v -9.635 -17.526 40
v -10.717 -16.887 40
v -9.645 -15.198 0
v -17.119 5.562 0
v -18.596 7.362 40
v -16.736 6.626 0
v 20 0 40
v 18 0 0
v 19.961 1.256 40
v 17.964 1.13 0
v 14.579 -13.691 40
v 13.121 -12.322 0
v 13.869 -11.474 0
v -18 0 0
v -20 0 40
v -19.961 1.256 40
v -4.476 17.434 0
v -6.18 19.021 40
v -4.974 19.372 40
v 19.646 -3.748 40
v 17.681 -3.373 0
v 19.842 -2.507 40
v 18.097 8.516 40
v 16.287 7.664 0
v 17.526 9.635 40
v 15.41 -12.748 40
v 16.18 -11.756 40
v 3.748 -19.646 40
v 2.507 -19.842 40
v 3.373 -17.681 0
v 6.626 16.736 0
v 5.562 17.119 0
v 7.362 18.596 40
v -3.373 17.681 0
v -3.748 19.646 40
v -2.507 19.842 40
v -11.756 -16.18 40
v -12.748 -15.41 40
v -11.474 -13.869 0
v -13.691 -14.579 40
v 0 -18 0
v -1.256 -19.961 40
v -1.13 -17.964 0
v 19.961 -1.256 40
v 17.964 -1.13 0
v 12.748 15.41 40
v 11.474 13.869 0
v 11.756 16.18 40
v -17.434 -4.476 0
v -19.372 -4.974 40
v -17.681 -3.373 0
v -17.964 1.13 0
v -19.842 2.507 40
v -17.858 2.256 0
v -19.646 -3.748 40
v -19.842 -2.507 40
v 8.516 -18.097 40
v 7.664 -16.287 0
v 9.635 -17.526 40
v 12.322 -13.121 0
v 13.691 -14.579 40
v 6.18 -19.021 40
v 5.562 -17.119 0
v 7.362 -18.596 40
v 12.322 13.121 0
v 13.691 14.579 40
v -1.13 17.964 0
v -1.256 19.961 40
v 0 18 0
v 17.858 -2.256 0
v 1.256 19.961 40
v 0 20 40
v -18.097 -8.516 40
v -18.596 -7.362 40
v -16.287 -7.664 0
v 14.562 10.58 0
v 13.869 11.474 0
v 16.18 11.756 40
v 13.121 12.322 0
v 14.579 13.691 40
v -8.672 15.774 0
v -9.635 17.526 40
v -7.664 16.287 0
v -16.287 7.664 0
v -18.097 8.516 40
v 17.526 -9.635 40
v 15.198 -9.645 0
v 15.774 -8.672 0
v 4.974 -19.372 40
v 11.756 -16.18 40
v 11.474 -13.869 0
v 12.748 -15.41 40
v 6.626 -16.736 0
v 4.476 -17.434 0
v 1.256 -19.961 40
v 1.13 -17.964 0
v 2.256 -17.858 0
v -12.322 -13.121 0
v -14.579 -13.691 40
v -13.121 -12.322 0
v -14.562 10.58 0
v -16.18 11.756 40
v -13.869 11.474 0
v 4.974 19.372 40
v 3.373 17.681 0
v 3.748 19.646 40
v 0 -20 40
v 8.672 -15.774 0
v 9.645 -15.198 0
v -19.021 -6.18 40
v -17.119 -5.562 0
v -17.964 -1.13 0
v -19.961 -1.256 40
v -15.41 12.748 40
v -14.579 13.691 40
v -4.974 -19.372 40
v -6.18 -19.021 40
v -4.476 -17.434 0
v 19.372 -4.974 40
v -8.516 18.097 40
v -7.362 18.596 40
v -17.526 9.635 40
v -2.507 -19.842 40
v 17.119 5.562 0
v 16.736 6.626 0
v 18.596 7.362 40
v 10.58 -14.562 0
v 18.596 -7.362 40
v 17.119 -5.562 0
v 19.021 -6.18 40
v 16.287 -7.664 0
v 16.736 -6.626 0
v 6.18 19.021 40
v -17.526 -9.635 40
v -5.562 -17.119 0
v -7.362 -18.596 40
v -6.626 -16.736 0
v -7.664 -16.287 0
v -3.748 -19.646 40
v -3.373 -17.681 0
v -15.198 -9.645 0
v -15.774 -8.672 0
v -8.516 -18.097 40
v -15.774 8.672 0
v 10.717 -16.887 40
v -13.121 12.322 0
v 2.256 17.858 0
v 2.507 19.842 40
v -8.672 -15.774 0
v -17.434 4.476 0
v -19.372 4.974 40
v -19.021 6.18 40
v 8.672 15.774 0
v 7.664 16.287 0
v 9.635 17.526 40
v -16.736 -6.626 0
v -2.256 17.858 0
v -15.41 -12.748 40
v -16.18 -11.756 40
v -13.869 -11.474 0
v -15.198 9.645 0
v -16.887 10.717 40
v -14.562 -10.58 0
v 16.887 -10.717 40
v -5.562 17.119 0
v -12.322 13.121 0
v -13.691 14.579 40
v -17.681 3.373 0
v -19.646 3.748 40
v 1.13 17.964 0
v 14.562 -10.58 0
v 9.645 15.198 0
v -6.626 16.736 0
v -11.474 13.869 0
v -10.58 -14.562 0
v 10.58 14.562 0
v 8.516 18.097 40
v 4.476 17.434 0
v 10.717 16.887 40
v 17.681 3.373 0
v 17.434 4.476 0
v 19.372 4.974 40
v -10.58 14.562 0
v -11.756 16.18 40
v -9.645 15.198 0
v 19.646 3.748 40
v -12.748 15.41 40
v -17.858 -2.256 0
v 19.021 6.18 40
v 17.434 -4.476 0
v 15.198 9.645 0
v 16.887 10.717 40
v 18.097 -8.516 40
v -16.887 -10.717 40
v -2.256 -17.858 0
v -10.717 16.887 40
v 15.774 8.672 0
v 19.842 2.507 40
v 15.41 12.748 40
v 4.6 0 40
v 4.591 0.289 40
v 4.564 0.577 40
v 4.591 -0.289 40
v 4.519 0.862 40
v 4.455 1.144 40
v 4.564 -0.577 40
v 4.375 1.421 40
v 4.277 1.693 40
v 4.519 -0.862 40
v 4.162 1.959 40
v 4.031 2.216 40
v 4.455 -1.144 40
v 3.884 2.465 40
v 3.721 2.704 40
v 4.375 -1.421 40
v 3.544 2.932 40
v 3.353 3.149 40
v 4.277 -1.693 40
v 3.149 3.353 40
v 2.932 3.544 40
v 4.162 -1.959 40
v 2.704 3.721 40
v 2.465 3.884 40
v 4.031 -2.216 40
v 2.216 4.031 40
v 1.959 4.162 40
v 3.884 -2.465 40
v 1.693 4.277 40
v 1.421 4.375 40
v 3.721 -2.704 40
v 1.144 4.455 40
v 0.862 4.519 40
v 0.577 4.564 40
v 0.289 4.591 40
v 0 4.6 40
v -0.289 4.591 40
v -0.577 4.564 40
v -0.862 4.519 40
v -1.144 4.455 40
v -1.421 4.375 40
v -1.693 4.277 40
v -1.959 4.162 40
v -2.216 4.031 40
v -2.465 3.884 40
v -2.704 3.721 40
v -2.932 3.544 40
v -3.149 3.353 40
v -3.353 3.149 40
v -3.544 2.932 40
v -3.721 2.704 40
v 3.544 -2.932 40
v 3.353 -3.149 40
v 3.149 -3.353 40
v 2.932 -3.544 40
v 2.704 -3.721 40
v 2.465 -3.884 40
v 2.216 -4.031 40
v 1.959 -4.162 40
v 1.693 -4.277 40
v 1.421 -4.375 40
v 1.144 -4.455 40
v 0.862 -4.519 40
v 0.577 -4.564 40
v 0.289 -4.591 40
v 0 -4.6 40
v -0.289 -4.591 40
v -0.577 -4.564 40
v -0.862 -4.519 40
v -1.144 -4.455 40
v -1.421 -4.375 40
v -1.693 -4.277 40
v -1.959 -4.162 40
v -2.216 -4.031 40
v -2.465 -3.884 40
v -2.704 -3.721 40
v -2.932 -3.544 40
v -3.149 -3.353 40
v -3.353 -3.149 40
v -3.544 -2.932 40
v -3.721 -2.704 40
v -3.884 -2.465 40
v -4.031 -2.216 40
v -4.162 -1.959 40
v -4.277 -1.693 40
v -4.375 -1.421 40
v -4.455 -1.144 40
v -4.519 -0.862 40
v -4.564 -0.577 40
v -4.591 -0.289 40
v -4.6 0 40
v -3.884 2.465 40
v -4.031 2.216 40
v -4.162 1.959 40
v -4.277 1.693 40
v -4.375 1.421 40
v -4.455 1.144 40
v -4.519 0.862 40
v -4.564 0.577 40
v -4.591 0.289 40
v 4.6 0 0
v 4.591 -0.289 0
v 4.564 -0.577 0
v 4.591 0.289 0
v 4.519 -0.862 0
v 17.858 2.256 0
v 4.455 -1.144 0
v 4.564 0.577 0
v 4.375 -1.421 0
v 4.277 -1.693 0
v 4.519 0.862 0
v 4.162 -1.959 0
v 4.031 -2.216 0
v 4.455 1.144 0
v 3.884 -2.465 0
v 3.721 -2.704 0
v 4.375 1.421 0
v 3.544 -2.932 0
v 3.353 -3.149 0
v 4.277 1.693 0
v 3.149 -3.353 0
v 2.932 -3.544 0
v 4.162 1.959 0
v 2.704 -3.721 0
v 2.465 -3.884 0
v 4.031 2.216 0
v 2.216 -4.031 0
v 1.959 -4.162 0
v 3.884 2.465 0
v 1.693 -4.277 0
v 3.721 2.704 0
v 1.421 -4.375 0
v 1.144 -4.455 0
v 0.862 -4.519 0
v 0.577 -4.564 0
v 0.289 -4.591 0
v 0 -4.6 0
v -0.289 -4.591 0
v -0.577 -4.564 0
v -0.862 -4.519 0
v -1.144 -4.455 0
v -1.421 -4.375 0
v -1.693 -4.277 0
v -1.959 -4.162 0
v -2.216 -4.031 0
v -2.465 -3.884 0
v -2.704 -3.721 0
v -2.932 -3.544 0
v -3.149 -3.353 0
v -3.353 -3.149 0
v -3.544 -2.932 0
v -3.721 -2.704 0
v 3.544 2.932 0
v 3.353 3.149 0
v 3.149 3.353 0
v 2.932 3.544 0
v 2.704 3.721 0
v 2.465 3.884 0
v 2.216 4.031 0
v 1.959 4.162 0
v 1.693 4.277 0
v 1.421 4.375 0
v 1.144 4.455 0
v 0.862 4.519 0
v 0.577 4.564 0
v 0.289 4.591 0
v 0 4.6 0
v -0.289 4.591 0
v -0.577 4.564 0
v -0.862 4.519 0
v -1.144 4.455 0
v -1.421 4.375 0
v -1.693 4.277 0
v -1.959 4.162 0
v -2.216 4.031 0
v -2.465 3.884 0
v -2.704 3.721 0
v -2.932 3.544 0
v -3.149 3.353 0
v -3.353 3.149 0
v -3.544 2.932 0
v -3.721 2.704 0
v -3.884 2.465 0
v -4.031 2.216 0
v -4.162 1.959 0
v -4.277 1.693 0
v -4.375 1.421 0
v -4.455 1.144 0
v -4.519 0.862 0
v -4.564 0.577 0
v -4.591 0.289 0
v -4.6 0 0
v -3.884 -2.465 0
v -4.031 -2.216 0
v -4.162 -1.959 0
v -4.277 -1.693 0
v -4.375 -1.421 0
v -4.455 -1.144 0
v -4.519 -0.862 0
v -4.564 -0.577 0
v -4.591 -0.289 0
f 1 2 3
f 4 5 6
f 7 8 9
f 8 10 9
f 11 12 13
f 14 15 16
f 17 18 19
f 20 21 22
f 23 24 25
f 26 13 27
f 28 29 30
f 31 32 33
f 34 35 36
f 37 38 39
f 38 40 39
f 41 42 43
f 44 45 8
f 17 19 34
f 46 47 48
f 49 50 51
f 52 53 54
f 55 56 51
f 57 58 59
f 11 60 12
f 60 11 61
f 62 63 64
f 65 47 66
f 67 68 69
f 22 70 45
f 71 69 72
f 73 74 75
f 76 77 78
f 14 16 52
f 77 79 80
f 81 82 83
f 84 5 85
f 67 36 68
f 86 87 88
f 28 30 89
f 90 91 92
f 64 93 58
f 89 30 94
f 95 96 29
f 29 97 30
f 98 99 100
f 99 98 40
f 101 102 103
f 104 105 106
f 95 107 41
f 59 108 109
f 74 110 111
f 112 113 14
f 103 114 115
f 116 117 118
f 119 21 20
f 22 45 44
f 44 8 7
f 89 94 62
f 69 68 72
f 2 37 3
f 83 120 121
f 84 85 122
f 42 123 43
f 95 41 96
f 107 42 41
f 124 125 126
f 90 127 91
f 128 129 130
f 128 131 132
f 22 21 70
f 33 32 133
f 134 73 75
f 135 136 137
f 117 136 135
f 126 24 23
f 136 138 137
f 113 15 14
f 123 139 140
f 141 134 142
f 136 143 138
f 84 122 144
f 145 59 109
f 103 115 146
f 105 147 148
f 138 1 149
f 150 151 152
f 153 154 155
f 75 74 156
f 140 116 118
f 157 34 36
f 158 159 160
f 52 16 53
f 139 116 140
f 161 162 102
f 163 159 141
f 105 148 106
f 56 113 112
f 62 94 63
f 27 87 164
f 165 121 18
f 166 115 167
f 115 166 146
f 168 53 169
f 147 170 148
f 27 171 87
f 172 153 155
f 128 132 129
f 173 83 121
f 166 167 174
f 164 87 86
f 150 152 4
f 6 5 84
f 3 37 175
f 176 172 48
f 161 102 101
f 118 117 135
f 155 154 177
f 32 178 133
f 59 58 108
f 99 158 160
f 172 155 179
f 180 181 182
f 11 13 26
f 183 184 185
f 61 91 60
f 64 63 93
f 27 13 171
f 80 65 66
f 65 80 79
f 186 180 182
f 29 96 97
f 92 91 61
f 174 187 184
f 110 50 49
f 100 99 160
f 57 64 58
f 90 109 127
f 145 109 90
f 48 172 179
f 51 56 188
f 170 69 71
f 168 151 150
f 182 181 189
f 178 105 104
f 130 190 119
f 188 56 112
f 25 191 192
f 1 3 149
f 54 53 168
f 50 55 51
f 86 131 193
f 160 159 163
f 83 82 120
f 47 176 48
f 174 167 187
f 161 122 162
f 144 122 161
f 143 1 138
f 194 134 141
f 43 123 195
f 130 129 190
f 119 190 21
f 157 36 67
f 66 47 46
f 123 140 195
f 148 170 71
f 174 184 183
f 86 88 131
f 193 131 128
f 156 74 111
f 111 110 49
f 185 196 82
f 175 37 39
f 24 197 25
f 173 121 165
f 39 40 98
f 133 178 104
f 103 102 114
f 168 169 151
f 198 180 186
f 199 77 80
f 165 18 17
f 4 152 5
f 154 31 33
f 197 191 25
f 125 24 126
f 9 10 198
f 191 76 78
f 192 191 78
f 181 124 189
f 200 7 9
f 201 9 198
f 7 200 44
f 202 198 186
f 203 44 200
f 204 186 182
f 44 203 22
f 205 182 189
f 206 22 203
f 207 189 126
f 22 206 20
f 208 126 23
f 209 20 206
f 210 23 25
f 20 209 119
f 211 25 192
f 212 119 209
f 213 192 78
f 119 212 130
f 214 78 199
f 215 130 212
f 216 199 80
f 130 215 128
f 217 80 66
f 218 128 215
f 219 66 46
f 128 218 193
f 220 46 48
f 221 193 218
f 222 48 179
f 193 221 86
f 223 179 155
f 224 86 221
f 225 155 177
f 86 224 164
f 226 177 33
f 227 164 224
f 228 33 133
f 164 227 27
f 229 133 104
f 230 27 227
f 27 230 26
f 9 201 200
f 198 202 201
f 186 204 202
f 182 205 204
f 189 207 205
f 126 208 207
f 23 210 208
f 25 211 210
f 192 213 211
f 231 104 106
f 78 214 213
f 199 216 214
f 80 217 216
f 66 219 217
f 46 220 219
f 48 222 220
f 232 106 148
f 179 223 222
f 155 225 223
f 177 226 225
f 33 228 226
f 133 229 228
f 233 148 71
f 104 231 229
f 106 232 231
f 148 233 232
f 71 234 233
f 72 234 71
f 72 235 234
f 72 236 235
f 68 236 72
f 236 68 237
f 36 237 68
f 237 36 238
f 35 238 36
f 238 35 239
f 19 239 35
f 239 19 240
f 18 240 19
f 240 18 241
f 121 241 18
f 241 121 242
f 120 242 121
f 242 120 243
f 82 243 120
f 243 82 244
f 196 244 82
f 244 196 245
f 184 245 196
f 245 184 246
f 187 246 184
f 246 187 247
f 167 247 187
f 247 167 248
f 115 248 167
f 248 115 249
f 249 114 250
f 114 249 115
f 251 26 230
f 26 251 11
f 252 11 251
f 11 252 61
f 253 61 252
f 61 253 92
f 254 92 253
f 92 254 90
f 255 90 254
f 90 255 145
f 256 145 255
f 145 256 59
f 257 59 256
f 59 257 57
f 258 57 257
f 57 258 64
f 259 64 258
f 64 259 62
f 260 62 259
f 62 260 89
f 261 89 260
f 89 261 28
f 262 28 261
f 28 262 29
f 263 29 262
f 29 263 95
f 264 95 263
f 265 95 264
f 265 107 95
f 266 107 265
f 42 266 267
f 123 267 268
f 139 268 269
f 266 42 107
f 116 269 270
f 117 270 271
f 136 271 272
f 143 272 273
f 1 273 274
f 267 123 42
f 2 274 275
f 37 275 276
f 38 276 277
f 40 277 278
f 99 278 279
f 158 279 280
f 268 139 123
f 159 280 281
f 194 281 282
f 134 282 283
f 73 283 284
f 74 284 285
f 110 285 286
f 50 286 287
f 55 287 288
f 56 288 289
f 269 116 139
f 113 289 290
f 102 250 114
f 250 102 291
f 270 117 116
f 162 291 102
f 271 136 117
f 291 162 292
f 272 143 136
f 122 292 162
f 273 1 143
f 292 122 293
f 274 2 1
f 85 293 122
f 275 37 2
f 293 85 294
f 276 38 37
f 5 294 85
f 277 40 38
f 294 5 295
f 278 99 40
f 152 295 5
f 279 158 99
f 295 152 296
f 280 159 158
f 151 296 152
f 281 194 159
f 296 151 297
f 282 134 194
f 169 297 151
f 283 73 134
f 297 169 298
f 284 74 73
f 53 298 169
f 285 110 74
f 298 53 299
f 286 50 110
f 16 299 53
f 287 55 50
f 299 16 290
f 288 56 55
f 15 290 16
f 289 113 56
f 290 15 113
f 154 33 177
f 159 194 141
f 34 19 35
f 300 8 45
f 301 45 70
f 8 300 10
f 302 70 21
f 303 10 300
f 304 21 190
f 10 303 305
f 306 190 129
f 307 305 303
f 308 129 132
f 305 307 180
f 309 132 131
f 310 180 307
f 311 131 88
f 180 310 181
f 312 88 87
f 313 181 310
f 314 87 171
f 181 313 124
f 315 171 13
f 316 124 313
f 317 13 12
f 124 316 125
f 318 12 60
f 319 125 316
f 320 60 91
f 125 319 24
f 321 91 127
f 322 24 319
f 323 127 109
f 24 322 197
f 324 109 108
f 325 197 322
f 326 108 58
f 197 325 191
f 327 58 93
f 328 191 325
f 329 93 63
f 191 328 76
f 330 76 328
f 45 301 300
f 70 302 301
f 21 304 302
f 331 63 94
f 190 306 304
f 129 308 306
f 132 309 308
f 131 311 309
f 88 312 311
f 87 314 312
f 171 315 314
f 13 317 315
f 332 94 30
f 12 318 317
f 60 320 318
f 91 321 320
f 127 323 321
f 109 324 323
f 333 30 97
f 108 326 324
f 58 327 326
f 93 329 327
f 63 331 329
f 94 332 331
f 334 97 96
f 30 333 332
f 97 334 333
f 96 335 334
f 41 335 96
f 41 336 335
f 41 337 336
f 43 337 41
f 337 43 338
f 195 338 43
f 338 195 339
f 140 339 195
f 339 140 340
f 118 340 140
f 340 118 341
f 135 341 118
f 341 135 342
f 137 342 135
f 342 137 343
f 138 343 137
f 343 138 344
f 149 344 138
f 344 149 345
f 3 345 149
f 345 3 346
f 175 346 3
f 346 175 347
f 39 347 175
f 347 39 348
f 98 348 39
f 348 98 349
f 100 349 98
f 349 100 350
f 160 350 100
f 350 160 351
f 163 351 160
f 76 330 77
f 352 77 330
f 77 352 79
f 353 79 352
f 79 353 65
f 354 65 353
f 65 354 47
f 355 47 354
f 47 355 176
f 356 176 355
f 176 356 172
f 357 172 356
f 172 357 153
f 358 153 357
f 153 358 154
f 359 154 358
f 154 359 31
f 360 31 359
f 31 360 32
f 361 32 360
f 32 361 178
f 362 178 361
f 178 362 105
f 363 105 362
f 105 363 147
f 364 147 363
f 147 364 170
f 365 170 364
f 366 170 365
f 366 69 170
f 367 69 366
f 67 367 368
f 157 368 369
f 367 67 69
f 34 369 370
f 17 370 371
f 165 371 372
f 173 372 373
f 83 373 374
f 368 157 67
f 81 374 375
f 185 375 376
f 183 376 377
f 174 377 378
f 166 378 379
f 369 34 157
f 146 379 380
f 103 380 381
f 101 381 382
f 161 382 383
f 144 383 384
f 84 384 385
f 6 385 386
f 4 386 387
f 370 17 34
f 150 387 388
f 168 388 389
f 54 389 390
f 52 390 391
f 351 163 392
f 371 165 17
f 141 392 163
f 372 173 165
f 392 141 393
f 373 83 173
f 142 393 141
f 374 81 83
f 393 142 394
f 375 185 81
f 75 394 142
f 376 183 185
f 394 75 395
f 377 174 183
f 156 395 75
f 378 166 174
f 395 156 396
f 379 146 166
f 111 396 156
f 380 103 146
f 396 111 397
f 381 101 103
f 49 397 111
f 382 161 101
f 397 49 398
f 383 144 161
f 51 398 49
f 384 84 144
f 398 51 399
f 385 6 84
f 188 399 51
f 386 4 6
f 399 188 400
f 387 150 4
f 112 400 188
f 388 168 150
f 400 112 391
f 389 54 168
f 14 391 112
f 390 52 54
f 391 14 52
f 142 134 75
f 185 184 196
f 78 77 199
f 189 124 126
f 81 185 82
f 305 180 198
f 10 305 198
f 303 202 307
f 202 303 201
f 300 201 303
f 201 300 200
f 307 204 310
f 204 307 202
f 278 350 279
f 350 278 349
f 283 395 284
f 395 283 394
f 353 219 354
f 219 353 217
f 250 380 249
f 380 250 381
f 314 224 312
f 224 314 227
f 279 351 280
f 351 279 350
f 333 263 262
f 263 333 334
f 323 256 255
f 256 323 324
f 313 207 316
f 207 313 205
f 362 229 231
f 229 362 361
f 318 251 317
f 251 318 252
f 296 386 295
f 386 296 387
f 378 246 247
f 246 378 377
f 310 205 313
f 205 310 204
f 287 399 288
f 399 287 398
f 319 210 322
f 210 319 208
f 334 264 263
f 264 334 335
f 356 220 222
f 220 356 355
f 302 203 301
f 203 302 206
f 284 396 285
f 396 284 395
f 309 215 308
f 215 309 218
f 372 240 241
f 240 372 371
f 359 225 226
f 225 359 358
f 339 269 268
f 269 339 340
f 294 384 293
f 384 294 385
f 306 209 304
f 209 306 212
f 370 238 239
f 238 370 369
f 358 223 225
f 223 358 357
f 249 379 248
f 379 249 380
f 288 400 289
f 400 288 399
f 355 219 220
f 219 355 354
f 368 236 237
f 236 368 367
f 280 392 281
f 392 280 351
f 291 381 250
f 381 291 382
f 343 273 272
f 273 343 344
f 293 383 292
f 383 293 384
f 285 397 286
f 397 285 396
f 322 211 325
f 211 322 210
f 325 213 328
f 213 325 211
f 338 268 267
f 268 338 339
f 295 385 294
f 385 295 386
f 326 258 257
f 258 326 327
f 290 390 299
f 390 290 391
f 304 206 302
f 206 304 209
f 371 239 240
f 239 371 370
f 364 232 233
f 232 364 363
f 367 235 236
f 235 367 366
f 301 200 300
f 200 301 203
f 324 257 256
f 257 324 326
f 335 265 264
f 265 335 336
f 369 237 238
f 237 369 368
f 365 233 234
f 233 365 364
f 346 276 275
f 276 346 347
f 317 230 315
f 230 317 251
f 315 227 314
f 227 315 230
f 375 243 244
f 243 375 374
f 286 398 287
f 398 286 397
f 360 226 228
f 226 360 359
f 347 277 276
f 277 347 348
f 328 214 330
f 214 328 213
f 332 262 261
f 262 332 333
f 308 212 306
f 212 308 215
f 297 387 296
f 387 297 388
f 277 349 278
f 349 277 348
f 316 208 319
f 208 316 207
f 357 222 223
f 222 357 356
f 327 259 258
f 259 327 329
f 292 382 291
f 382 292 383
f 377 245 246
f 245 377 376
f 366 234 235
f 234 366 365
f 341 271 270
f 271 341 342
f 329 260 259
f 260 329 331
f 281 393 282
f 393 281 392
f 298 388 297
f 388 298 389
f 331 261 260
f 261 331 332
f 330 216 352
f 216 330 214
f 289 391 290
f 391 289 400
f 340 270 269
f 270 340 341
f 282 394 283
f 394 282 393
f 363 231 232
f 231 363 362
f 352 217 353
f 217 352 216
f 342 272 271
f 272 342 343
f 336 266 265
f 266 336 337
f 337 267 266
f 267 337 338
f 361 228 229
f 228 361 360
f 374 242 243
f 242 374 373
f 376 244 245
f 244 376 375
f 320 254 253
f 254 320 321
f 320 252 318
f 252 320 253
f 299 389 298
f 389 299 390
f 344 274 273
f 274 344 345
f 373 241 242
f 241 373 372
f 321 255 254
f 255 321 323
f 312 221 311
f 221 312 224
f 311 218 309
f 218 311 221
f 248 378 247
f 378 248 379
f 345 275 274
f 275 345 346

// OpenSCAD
// Parameters
x = 18;      // bottom radius
y = 2;       // taper increment (top radius = x + y)
z = 40;      // height
b = 4.6;       // bore radius

$fn = 100;   // smoothness

difference() {
    // Outer cork body
    cylinder(h = z, r1 = x, r2 = x + y);

    // Bore (straight cylinder)
    translate([0, 0, -1])  // extend slightly below
        cylinder(h = z + 2, r = b);
}
